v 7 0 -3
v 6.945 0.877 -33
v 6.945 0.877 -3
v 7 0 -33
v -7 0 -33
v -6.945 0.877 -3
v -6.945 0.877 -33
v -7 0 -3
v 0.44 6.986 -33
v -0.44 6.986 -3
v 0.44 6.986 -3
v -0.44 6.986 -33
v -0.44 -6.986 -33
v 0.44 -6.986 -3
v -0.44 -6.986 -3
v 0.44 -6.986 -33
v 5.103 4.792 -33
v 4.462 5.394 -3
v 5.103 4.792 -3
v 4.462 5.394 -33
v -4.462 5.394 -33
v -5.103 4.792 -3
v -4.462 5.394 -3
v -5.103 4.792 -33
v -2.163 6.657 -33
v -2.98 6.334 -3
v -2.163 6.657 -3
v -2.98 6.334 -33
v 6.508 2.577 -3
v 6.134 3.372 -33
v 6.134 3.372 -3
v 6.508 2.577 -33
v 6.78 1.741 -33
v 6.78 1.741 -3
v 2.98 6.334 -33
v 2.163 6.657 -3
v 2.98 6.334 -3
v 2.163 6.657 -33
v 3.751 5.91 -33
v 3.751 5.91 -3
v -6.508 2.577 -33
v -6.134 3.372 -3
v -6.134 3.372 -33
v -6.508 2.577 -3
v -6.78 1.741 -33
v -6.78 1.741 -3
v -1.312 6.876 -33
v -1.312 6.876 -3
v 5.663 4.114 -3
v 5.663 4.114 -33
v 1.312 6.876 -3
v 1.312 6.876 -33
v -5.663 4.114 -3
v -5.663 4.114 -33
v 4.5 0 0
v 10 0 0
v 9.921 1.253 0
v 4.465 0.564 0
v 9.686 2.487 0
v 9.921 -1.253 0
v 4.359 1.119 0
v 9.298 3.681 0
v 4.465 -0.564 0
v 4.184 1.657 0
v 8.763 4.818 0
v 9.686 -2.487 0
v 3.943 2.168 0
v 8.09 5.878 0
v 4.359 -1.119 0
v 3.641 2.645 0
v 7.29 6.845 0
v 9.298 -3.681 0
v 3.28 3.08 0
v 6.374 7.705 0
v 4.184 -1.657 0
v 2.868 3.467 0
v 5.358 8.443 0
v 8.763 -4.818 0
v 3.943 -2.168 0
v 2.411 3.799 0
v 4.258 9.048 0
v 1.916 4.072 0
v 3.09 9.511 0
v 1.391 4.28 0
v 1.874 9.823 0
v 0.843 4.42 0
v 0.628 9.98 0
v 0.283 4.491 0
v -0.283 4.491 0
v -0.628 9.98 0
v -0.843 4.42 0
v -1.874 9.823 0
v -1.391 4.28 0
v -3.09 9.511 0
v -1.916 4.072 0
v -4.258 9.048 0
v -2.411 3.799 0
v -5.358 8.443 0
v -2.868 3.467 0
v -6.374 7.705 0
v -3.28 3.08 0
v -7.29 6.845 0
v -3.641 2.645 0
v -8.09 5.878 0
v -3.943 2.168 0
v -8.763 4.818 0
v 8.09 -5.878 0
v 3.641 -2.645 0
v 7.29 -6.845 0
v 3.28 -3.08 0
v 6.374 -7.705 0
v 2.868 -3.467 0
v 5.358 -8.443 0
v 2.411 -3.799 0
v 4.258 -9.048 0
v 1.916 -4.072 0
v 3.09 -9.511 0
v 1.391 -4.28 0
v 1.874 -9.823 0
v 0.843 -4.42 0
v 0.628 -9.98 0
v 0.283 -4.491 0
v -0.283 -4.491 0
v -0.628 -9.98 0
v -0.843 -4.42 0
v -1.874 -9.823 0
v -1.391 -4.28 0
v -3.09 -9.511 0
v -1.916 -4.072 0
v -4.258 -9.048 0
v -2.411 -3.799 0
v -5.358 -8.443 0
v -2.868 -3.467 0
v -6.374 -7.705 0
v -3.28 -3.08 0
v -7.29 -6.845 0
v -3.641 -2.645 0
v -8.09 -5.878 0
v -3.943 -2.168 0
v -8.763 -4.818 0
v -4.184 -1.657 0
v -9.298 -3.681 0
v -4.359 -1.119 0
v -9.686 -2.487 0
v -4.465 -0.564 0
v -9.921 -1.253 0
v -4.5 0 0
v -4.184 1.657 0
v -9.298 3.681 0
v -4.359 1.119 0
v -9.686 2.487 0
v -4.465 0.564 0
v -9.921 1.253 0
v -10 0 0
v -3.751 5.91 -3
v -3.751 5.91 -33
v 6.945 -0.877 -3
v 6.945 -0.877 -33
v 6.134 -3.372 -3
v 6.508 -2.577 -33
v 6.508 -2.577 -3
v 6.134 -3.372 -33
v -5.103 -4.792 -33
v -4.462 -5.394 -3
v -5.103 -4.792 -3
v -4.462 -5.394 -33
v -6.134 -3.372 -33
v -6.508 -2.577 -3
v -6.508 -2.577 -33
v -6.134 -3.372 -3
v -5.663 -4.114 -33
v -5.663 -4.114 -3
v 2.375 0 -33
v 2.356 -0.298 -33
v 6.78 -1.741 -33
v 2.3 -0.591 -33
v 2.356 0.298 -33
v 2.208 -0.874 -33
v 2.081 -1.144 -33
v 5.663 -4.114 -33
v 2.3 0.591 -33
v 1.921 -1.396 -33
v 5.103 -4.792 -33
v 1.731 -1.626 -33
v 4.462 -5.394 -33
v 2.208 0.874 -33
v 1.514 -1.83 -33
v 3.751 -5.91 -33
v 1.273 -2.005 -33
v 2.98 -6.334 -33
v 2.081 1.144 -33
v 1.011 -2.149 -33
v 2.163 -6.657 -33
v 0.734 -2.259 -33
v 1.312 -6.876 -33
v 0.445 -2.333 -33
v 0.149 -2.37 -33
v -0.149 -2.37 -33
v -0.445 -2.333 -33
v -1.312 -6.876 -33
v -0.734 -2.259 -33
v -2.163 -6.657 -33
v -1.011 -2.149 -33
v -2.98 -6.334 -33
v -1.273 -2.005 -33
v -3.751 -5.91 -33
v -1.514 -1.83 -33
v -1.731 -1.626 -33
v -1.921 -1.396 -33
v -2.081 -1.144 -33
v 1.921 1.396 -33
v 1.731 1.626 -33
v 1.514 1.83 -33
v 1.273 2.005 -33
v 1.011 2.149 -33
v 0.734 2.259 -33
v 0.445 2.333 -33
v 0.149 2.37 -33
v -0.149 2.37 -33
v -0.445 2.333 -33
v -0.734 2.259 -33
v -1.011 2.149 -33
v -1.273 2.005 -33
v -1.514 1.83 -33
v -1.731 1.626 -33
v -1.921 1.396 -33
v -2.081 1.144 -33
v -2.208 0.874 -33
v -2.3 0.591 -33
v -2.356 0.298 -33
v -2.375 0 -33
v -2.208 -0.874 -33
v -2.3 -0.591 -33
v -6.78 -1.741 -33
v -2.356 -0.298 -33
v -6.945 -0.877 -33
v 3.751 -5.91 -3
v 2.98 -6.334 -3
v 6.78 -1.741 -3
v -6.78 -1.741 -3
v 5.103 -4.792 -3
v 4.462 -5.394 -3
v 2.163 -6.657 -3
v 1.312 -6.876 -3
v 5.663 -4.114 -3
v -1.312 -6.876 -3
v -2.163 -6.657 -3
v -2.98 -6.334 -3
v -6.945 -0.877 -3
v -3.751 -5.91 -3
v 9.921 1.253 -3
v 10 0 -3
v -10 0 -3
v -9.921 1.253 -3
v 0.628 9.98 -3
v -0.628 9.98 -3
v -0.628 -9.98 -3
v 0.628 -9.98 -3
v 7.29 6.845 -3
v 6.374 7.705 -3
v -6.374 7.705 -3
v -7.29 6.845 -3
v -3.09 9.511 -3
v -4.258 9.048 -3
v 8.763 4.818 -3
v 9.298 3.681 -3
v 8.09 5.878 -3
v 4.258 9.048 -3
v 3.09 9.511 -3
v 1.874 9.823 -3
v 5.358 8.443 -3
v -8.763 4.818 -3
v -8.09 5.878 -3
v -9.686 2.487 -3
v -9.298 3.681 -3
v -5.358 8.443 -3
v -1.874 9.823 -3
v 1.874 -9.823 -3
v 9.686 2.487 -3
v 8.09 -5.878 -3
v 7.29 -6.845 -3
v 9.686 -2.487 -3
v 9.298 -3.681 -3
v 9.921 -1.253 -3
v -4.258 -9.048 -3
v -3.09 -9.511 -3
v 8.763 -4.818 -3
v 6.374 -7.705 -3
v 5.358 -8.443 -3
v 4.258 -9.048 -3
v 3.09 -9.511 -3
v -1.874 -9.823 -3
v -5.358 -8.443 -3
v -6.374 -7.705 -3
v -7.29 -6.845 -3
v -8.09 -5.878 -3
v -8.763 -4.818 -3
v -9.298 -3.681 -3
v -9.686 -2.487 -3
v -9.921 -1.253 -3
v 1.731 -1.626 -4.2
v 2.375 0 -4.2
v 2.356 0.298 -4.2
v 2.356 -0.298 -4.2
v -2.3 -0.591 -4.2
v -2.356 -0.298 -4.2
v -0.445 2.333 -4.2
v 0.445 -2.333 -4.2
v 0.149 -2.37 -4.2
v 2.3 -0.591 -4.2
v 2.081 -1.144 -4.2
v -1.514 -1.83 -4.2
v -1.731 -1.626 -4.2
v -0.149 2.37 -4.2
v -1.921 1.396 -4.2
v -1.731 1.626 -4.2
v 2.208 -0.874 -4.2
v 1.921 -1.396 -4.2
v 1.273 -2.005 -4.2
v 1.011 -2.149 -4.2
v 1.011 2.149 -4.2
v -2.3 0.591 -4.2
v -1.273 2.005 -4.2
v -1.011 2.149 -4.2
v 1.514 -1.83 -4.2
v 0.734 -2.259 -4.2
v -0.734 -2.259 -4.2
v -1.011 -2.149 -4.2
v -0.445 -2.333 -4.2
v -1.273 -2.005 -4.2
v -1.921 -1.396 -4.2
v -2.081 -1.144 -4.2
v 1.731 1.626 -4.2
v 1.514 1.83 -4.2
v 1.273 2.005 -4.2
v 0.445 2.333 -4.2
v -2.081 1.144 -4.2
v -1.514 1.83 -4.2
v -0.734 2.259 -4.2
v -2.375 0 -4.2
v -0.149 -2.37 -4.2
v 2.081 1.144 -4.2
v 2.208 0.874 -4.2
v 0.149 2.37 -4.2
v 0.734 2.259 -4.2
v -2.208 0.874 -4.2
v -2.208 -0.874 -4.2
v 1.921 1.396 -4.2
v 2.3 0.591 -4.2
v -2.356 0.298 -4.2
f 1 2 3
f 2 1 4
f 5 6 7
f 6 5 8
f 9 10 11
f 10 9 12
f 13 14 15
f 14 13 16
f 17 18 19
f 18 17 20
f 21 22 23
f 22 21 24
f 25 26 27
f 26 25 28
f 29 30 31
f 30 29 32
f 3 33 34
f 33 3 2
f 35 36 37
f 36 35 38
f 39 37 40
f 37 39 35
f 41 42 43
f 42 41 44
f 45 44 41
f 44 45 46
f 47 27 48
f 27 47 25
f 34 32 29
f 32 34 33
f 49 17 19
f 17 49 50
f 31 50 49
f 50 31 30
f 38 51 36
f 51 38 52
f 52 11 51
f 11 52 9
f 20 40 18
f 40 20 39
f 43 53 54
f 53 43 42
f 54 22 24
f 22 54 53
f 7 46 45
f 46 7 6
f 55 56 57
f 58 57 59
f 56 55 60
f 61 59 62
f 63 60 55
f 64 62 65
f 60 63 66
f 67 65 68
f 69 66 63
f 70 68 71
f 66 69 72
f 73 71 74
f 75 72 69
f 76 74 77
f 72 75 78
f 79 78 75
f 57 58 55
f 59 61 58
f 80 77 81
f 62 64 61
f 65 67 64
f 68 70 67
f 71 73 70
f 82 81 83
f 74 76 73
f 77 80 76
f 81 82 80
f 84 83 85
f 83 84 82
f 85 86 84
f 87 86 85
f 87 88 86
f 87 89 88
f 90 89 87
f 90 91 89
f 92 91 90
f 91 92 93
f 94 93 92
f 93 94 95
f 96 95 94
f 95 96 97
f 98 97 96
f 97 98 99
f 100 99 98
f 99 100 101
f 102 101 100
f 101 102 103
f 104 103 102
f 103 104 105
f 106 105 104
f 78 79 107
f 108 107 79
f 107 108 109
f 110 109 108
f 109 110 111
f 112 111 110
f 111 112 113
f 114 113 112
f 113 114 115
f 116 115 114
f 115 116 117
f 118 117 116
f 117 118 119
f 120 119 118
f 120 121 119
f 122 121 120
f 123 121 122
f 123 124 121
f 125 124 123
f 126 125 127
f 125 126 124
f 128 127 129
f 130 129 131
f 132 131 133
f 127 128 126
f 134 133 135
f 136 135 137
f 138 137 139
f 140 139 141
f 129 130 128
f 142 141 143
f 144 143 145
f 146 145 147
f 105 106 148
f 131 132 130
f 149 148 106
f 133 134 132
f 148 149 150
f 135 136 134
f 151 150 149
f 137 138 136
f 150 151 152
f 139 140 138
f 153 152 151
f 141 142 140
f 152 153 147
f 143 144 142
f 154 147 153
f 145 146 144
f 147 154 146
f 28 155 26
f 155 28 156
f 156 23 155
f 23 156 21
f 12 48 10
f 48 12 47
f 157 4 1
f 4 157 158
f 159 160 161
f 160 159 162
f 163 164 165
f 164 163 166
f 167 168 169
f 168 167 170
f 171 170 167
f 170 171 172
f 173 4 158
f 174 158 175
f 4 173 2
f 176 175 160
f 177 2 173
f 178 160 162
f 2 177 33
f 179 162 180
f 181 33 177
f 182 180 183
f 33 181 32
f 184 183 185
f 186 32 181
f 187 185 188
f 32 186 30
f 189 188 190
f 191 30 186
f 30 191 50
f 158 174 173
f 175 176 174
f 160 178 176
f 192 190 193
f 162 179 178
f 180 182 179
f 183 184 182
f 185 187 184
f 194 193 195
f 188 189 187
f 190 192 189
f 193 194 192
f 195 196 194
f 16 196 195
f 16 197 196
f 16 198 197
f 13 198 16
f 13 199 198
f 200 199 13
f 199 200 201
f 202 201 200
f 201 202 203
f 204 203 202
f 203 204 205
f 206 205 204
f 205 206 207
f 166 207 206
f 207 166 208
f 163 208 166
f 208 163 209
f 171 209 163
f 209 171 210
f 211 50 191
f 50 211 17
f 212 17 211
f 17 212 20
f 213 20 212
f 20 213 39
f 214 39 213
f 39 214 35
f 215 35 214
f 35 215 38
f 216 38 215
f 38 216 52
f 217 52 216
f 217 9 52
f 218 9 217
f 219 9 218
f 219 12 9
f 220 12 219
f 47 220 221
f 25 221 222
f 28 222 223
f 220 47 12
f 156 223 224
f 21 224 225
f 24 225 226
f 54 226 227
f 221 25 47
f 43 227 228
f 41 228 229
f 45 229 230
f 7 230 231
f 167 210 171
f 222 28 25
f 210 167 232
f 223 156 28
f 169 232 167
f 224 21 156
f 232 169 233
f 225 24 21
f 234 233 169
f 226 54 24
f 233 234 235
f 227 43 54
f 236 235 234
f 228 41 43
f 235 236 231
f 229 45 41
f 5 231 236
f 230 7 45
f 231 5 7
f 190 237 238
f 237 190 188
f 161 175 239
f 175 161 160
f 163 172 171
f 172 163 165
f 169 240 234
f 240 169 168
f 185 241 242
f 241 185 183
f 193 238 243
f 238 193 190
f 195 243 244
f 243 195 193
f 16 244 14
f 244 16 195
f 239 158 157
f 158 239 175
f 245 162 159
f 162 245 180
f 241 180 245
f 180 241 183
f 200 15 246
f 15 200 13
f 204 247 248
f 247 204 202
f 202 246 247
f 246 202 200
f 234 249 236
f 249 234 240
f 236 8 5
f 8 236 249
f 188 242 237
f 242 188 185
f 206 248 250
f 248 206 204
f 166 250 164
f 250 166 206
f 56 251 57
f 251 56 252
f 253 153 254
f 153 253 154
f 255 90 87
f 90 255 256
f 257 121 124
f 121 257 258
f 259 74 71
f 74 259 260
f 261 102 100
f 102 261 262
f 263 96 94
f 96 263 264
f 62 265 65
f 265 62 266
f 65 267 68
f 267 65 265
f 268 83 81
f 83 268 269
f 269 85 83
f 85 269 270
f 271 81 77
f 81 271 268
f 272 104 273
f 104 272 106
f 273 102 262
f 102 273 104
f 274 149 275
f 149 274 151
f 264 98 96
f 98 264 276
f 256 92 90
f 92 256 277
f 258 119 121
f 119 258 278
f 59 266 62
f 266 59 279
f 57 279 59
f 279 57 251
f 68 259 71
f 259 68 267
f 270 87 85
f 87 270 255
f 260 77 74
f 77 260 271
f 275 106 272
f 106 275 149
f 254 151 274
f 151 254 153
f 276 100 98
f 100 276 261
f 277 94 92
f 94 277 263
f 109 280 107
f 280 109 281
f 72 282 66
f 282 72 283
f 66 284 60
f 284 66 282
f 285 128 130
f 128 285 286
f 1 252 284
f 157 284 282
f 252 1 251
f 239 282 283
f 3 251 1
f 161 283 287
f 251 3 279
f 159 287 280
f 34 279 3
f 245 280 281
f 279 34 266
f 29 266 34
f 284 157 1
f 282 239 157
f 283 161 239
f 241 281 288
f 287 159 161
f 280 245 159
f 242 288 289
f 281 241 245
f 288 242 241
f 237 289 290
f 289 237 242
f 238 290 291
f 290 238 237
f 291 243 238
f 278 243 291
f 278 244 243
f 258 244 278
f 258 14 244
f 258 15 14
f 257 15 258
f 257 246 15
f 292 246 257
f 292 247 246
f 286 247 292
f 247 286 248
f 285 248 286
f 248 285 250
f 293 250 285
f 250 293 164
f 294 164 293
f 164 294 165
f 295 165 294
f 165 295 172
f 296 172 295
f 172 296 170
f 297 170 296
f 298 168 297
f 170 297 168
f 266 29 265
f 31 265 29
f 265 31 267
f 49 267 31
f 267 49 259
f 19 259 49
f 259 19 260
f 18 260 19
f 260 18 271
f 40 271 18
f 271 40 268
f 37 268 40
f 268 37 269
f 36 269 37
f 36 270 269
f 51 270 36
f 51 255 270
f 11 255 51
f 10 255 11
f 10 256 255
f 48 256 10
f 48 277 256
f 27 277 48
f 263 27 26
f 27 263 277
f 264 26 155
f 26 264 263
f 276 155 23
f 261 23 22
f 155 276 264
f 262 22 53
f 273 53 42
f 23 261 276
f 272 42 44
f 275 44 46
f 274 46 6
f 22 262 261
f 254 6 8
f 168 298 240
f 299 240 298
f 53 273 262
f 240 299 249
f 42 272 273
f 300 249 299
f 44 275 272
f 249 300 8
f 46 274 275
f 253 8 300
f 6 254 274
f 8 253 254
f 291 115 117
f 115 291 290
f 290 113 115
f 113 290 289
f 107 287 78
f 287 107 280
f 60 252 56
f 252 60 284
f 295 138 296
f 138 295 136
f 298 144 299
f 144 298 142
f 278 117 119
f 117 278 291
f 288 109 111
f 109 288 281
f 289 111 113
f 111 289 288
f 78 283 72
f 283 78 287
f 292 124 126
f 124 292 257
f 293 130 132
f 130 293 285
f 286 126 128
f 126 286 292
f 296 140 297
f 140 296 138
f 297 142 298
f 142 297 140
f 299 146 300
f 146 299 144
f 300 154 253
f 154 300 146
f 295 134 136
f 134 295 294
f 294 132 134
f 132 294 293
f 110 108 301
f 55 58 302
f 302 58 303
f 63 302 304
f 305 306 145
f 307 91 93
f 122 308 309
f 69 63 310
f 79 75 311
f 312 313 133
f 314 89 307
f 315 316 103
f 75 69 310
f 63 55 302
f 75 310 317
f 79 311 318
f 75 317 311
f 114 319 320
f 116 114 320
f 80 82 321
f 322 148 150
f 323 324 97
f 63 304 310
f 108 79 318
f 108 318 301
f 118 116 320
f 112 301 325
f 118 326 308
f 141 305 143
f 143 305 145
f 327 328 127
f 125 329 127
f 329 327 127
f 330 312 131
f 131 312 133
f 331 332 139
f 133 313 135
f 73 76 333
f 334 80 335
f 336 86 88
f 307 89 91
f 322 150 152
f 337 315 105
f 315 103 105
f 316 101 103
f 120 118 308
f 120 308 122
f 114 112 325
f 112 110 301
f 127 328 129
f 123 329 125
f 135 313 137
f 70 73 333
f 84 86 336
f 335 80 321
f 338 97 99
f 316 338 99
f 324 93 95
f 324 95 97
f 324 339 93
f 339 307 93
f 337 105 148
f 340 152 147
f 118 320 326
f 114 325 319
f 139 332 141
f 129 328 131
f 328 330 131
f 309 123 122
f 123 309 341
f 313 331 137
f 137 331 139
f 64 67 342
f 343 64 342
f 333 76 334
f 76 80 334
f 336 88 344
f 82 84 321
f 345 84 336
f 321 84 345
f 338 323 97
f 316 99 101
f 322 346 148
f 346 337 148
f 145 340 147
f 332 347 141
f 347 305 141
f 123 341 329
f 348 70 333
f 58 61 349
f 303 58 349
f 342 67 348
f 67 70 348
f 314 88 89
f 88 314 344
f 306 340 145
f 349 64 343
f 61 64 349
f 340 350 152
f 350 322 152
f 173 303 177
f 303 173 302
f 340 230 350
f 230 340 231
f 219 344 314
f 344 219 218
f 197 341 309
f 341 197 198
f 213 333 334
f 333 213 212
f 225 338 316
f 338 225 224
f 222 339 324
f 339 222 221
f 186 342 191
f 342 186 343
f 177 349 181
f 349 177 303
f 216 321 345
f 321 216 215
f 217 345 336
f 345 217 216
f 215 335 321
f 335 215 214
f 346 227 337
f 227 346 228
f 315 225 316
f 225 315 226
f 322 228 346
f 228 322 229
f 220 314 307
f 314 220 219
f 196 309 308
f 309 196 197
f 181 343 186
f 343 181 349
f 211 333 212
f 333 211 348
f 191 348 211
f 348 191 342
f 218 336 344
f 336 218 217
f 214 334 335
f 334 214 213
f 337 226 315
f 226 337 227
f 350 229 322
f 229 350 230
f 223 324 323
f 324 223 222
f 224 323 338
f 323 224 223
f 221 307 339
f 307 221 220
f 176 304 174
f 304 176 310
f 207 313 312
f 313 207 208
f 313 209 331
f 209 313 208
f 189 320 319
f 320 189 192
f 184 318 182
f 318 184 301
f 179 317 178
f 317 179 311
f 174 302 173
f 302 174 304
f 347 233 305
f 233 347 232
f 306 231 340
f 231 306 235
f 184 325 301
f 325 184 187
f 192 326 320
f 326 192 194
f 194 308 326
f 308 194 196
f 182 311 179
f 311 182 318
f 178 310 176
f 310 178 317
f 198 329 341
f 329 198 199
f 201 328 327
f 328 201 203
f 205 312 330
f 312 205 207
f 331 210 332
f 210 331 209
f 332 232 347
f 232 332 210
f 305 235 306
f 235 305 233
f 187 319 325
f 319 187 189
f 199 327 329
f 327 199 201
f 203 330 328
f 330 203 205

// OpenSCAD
$fn = 50;


difference() {
	union() {
		translate(v = [0, 0, -33.0000000000]) {
			cylinder(h = 33, r = 7.0000000000);
		}
		translate(v = [0, 0, -3.0000000000]) {
			cylinder(h = 3, r = 10.0000000000);
		}
	}
	union() {
		translate(v = [0, 0, 0]) {
			rotate(a = [0, 0, 0]) {
				difference() {
					union() {
						#translate(v = [0, 0, -33.0000000000]) {
							cylinder(h = 33, r = 2.2500000000);
						}
						#translate(v = [0, 0, -4.2000000000]) {
							cylinder(h = 4.2000000000, r = 7.0000000000, r1 = 2.3750000000, r2 = 4.5000000000);
						}
						#translate(v = [0, 0, -33.0000000000]) {
							cylinder(h = 33, r = 2.3750000000);
						}
						#translate(v = [0, 0, -33.0000000000]) {
							cylinder(h = 33, r = 2.2500000000);
						}
					}
					union();
				}
			}
		}
	}
}
